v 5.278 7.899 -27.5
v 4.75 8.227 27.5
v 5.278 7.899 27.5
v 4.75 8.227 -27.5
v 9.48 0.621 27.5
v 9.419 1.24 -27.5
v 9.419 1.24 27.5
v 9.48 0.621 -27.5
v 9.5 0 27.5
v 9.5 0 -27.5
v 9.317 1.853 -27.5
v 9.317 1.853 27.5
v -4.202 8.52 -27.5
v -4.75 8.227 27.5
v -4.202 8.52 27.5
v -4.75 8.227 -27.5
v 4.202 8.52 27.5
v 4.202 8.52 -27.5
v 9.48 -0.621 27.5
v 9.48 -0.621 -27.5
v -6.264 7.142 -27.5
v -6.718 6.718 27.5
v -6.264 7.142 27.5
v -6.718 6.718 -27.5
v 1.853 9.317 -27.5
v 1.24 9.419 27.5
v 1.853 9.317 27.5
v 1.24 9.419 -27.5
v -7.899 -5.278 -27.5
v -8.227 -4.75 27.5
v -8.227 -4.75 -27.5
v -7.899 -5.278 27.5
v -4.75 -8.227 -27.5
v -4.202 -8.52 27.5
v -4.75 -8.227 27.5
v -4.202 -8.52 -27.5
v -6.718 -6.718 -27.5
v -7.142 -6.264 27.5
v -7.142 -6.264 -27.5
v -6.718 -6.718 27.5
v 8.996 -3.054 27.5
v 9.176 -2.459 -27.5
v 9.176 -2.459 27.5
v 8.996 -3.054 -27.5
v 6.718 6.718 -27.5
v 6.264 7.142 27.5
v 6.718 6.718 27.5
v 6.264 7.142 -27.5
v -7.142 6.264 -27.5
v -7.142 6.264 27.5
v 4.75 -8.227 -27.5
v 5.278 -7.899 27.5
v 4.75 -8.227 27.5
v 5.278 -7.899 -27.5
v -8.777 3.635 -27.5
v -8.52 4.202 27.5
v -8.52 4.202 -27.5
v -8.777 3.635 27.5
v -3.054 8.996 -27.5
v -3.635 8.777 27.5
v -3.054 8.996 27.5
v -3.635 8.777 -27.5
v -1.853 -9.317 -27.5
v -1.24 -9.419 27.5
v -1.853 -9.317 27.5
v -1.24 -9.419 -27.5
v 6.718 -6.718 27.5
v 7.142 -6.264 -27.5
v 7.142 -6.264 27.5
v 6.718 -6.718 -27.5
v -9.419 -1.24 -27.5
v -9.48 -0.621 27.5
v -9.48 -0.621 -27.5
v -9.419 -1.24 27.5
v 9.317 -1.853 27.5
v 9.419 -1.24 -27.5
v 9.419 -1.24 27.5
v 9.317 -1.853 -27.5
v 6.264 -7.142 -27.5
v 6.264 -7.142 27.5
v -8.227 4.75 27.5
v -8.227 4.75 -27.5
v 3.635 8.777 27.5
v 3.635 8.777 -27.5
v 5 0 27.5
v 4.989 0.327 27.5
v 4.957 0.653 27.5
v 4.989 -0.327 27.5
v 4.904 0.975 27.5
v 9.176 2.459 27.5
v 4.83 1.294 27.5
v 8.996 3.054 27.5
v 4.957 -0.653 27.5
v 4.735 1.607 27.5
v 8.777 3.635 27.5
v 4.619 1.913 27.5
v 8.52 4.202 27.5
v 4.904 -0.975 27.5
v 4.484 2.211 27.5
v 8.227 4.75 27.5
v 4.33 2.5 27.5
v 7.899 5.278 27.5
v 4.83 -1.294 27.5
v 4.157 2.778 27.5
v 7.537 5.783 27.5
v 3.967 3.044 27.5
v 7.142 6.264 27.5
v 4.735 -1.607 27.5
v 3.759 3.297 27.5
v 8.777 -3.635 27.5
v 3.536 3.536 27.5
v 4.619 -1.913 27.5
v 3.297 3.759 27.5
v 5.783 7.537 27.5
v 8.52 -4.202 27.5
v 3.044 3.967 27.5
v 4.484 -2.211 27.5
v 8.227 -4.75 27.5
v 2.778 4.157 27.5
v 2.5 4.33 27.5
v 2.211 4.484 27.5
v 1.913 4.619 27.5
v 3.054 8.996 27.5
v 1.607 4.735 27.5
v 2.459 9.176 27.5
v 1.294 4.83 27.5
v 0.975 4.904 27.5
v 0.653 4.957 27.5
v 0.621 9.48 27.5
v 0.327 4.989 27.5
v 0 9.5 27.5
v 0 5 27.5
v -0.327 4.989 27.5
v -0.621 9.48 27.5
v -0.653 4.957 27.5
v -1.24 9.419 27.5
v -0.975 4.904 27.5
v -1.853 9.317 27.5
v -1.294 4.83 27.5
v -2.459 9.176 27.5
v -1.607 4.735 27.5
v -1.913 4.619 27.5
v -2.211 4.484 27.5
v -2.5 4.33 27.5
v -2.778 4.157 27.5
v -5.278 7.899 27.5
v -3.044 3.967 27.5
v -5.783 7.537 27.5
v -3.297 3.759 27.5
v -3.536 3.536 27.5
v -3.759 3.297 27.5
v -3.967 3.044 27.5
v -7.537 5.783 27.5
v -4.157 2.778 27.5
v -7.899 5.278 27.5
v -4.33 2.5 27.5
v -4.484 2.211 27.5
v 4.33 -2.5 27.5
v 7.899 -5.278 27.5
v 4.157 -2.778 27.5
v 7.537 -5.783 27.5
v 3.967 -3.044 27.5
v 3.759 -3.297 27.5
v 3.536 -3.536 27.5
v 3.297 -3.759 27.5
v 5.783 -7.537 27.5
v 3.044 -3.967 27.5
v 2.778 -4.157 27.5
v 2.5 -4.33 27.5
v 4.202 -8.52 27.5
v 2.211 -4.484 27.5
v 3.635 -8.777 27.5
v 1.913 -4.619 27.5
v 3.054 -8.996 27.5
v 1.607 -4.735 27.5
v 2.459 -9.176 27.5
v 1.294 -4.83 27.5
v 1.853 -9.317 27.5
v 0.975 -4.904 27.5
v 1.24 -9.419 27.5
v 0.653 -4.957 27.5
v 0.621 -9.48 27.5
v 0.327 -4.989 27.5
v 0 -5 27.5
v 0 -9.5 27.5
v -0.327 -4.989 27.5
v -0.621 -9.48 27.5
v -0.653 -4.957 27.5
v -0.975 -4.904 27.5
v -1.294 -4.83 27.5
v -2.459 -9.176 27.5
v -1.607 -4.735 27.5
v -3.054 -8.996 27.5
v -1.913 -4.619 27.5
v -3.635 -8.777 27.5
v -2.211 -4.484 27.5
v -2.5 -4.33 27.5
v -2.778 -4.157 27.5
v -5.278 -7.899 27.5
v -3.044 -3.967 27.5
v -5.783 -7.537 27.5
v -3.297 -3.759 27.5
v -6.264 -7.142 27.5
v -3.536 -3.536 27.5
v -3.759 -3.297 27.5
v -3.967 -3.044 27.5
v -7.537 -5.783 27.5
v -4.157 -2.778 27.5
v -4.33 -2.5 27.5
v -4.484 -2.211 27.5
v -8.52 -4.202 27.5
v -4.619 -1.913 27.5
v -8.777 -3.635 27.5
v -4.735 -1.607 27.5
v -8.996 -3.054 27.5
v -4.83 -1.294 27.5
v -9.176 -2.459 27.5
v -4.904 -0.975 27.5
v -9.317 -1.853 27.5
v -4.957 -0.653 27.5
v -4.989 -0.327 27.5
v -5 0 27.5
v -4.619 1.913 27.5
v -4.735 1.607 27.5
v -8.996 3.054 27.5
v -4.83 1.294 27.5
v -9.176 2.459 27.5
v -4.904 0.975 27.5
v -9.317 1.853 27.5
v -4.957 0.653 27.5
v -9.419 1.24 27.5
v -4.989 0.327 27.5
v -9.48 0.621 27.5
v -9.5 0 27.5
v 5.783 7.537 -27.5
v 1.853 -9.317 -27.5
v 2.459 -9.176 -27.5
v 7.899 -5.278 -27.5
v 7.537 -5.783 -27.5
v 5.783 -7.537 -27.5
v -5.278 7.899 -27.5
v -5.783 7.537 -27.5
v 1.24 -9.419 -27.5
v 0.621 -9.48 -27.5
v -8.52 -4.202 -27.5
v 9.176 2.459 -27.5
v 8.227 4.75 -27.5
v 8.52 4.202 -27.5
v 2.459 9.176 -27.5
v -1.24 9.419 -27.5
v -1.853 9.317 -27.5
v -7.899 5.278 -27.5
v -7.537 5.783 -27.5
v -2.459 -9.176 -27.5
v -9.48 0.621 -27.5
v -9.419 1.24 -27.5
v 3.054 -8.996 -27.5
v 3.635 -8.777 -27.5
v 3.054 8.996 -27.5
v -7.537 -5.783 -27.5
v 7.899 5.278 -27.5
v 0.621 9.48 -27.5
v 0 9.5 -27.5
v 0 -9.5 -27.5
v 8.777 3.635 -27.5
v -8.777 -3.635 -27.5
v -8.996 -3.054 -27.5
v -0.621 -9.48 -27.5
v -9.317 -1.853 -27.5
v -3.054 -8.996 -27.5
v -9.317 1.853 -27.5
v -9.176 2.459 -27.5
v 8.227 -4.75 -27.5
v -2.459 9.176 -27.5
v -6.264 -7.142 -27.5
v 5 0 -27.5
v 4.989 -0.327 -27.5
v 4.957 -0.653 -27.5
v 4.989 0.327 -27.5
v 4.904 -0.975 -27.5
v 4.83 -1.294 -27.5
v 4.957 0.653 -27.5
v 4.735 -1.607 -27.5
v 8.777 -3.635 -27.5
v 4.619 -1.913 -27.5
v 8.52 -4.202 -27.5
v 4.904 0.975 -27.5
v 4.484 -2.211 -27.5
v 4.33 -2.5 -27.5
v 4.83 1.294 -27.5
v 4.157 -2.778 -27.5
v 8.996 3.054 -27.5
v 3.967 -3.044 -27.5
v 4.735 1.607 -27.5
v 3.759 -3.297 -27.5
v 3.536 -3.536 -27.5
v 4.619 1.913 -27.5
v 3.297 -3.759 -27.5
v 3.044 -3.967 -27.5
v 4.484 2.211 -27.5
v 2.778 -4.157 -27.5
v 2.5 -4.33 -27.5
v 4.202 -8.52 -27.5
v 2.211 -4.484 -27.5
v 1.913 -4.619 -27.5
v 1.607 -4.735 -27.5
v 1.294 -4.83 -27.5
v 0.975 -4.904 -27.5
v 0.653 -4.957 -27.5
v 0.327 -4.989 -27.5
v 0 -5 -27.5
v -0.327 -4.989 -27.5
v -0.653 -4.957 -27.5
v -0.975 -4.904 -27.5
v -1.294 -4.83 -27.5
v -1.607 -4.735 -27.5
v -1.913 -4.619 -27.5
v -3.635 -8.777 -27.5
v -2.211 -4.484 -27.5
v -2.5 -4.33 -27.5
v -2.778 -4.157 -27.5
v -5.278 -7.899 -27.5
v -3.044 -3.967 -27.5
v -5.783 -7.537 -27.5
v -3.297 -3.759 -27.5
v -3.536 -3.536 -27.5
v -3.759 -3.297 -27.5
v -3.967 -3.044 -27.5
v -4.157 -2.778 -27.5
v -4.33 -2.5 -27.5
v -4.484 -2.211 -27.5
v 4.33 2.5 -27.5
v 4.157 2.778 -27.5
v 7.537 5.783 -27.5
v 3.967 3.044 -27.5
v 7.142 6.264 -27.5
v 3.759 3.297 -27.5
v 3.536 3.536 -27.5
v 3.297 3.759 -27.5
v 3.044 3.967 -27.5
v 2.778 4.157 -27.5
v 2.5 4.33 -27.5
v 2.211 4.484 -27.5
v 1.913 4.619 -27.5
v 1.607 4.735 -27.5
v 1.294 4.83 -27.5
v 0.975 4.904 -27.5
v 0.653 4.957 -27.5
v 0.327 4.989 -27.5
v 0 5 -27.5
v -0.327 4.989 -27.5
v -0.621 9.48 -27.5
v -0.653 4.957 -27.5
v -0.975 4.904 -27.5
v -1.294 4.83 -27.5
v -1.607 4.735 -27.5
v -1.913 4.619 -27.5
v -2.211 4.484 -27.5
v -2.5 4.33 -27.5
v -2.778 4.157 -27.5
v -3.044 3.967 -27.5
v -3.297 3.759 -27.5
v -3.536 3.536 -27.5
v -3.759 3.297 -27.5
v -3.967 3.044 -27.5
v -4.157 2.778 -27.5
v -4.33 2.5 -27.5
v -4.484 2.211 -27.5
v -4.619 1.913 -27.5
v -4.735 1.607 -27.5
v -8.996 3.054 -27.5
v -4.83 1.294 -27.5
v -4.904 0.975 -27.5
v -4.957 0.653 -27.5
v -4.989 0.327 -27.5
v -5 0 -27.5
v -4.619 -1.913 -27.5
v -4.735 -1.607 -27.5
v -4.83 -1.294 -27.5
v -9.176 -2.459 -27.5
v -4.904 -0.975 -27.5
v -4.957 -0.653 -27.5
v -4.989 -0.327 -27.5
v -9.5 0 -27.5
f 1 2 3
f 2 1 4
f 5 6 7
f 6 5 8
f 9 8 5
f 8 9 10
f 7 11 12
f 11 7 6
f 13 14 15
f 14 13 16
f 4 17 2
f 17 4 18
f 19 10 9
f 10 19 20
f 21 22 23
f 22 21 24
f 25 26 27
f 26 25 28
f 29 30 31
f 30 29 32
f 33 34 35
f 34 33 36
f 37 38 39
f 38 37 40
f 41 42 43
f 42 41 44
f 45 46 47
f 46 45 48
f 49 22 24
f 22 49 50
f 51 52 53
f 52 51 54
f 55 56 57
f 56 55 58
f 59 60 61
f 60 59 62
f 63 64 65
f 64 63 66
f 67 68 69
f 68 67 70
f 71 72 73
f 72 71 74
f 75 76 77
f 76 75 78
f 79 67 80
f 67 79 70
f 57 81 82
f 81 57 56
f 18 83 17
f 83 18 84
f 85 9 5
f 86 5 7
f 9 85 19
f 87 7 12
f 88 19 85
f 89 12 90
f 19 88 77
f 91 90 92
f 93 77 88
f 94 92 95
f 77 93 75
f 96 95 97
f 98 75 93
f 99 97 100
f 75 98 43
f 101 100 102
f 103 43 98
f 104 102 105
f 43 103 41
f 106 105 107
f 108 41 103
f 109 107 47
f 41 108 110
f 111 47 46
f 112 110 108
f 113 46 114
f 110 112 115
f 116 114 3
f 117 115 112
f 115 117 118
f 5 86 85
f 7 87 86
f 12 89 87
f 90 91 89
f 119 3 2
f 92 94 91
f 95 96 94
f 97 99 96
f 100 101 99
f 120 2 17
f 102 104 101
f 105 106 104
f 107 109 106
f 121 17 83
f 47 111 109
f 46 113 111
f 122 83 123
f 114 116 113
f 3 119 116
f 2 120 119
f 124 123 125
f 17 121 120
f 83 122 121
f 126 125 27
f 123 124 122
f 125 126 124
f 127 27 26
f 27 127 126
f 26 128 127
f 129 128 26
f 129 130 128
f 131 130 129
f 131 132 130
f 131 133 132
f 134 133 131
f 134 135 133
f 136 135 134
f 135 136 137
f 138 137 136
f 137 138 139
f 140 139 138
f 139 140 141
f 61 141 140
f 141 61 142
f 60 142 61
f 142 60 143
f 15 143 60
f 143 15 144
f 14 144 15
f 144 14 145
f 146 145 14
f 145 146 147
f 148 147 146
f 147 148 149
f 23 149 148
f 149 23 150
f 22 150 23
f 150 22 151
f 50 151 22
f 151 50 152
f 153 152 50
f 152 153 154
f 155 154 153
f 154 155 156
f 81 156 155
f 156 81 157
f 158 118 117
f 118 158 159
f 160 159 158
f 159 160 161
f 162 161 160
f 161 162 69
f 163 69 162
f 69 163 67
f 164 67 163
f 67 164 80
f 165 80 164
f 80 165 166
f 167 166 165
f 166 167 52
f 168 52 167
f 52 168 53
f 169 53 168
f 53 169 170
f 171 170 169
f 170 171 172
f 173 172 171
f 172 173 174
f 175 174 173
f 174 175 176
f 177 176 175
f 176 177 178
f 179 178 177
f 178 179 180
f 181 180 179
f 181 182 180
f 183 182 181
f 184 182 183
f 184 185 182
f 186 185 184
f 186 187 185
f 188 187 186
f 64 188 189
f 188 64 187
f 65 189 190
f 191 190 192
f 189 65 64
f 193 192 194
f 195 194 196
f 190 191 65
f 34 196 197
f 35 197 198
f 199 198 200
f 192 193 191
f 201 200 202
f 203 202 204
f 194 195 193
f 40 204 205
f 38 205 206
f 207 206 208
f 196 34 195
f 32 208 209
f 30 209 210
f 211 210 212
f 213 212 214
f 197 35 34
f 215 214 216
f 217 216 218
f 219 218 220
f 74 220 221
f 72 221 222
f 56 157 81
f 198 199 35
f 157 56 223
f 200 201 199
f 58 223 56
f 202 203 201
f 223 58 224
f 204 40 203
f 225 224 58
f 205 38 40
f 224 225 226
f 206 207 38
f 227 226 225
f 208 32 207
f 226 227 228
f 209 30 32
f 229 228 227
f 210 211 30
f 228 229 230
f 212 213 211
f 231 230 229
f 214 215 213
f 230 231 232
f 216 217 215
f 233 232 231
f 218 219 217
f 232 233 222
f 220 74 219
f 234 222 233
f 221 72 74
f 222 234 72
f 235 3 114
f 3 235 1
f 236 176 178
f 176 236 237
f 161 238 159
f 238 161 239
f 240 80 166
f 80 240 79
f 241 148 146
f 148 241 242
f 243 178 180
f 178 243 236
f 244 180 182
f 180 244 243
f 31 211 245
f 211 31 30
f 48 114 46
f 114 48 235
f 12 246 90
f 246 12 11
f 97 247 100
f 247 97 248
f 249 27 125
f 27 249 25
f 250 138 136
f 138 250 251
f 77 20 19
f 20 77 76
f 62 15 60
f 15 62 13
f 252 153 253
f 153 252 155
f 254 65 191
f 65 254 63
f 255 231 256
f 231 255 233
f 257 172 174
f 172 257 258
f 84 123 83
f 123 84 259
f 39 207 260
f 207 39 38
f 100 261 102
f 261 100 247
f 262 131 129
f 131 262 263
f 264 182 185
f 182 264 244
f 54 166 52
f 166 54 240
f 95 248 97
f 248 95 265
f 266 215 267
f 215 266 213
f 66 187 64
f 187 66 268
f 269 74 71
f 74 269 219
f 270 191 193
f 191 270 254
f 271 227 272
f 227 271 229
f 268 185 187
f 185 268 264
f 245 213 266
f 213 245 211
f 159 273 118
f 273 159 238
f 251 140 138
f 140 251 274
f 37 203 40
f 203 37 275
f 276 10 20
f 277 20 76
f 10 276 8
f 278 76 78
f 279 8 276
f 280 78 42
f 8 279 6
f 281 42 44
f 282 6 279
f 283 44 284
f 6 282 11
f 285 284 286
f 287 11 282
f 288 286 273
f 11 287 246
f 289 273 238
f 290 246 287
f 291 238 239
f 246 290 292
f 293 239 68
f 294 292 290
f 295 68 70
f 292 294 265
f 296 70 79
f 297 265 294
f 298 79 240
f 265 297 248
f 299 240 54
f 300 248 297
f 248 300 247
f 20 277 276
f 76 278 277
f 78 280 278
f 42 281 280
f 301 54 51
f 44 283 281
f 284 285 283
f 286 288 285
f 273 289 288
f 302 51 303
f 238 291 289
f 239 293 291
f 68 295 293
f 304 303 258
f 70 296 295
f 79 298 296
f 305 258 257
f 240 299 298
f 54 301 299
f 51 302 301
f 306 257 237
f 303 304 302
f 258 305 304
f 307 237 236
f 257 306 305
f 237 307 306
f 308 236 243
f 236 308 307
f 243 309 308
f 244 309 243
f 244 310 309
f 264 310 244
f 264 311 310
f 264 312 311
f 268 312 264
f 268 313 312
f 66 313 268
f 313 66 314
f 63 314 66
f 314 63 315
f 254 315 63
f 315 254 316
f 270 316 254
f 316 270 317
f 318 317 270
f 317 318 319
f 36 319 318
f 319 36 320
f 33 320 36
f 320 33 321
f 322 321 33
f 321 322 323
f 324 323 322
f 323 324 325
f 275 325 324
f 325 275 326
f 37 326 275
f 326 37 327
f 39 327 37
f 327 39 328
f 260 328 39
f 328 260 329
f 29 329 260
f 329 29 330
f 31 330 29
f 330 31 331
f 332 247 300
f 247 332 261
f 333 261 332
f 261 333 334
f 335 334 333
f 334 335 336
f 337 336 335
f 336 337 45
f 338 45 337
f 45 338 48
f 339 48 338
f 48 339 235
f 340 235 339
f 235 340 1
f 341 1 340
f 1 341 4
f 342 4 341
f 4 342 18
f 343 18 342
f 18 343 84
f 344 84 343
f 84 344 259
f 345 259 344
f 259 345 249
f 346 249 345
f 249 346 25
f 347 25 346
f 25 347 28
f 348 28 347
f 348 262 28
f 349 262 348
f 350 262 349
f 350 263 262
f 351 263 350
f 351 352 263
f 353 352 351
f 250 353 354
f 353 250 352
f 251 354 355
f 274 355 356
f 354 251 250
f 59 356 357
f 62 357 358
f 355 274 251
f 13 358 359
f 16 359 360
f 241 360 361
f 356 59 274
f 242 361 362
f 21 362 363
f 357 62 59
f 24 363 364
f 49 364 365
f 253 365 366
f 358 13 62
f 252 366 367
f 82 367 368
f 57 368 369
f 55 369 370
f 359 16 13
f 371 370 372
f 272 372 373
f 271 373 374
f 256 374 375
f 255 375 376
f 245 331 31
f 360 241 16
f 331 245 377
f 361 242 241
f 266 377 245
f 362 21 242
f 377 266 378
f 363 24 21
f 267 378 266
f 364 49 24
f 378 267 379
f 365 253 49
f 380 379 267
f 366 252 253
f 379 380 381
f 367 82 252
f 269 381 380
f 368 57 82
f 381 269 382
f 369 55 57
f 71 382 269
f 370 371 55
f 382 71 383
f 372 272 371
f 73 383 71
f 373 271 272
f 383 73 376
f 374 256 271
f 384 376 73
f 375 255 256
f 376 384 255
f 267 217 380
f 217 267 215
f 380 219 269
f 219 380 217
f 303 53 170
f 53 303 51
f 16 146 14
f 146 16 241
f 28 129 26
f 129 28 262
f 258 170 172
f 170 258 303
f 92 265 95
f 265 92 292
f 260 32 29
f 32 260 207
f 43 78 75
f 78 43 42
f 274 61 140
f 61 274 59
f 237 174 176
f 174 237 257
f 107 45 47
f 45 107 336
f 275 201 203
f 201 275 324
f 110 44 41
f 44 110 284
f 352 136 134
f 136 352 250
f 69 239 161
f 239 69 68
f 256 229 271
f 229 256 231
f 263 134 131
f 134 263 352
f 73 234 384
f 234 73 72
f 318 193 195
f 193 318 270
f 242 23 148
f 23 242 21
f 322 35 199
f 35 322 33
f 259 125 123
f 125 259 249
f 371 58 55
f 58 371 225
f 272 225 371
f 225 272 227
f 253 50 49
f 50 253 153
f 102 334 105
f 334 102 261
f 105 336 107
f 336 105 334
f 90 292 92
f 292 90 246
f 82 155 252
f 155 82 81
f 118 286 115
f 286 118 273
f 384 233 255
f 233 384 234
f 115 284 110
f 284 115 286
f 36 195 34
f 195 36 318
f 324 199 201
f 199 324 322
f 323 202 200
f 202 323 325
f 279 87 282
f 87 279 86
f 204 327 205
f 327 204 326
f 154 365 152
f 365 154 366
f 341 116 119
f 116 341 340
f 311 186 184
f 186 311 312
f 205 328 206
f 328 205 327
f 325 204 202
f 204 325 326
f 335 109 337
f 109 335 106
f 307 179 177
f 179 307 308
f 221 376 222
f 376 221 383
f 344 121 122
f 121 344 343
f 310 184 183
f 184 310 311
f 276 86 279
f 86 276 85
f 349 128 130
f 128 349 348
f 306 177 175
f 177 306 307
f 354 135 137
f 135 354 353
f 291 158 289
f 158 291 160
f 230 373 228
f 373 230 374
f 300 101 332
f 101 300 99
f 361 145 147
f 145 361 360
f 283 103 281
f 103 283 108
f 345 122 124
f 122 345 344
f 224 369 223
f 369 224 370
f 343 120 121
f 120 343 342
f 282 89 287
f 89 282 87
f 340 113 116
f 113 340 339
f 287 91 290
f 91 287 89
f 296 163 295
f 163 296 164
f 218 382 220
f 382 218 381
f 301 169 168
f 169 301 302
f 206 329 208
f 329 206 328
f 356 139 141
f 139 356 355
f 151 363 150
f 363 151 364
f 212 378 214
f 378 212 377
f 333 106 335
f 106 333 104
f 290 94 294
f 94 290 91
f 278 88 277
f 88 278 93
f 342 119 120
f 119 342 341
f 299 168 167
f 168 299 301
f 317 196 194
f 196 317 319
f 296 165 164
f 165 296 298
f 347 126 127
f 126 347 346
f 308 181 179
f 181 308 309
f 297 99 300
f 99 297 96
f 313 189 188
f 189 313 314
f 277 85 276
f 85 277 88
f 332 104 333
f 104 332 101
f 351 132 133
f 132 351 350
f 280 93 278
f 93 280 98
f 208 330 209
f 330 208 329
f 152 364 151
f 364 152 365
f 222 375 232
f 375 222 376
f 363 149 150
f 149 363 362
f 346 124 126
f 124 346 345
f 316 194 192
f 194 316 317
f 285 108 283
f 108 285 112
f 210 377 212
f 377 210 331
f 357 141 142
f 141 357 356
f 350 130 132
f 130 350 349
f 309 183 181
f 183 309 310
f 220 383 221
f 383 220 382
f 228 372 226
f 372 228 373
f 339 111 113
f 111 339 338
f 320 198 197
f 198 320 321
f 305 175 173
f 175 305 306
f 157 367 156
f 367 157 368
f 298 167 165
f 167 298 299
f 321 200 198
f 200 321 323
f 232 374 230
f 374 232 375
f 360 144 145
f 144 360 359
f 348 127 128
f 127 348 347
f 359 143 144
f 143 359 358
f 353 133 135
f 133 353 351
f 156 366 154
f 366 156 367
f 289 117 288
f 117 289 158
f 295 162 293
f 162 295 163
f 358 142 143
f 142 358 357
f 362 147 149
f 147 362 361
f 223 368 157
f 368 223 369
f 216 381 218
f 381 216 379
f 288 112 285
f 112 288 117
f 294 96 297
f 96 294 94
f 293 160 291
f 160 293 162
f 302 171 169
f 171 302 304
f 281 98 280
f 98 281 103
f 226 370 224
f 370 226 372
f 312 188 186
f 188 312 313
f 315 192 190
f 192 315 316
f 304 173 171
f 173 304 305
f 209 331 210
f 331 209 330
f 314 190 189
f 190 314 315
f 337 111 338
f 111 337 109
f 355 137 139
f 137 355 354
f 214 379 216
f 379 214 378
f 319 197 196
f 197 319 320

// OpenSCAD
$fn = 96;

module linear_ball_bearing(bore_d=10, od_d=19, len=55) {
    difference() {
        cylinder(h=len, d=od_d, center=true);
        cylinder(h=len+0.6, d=bore_d, center=true);
    }
}

linear_ball_bearing(10, 19, 55);
